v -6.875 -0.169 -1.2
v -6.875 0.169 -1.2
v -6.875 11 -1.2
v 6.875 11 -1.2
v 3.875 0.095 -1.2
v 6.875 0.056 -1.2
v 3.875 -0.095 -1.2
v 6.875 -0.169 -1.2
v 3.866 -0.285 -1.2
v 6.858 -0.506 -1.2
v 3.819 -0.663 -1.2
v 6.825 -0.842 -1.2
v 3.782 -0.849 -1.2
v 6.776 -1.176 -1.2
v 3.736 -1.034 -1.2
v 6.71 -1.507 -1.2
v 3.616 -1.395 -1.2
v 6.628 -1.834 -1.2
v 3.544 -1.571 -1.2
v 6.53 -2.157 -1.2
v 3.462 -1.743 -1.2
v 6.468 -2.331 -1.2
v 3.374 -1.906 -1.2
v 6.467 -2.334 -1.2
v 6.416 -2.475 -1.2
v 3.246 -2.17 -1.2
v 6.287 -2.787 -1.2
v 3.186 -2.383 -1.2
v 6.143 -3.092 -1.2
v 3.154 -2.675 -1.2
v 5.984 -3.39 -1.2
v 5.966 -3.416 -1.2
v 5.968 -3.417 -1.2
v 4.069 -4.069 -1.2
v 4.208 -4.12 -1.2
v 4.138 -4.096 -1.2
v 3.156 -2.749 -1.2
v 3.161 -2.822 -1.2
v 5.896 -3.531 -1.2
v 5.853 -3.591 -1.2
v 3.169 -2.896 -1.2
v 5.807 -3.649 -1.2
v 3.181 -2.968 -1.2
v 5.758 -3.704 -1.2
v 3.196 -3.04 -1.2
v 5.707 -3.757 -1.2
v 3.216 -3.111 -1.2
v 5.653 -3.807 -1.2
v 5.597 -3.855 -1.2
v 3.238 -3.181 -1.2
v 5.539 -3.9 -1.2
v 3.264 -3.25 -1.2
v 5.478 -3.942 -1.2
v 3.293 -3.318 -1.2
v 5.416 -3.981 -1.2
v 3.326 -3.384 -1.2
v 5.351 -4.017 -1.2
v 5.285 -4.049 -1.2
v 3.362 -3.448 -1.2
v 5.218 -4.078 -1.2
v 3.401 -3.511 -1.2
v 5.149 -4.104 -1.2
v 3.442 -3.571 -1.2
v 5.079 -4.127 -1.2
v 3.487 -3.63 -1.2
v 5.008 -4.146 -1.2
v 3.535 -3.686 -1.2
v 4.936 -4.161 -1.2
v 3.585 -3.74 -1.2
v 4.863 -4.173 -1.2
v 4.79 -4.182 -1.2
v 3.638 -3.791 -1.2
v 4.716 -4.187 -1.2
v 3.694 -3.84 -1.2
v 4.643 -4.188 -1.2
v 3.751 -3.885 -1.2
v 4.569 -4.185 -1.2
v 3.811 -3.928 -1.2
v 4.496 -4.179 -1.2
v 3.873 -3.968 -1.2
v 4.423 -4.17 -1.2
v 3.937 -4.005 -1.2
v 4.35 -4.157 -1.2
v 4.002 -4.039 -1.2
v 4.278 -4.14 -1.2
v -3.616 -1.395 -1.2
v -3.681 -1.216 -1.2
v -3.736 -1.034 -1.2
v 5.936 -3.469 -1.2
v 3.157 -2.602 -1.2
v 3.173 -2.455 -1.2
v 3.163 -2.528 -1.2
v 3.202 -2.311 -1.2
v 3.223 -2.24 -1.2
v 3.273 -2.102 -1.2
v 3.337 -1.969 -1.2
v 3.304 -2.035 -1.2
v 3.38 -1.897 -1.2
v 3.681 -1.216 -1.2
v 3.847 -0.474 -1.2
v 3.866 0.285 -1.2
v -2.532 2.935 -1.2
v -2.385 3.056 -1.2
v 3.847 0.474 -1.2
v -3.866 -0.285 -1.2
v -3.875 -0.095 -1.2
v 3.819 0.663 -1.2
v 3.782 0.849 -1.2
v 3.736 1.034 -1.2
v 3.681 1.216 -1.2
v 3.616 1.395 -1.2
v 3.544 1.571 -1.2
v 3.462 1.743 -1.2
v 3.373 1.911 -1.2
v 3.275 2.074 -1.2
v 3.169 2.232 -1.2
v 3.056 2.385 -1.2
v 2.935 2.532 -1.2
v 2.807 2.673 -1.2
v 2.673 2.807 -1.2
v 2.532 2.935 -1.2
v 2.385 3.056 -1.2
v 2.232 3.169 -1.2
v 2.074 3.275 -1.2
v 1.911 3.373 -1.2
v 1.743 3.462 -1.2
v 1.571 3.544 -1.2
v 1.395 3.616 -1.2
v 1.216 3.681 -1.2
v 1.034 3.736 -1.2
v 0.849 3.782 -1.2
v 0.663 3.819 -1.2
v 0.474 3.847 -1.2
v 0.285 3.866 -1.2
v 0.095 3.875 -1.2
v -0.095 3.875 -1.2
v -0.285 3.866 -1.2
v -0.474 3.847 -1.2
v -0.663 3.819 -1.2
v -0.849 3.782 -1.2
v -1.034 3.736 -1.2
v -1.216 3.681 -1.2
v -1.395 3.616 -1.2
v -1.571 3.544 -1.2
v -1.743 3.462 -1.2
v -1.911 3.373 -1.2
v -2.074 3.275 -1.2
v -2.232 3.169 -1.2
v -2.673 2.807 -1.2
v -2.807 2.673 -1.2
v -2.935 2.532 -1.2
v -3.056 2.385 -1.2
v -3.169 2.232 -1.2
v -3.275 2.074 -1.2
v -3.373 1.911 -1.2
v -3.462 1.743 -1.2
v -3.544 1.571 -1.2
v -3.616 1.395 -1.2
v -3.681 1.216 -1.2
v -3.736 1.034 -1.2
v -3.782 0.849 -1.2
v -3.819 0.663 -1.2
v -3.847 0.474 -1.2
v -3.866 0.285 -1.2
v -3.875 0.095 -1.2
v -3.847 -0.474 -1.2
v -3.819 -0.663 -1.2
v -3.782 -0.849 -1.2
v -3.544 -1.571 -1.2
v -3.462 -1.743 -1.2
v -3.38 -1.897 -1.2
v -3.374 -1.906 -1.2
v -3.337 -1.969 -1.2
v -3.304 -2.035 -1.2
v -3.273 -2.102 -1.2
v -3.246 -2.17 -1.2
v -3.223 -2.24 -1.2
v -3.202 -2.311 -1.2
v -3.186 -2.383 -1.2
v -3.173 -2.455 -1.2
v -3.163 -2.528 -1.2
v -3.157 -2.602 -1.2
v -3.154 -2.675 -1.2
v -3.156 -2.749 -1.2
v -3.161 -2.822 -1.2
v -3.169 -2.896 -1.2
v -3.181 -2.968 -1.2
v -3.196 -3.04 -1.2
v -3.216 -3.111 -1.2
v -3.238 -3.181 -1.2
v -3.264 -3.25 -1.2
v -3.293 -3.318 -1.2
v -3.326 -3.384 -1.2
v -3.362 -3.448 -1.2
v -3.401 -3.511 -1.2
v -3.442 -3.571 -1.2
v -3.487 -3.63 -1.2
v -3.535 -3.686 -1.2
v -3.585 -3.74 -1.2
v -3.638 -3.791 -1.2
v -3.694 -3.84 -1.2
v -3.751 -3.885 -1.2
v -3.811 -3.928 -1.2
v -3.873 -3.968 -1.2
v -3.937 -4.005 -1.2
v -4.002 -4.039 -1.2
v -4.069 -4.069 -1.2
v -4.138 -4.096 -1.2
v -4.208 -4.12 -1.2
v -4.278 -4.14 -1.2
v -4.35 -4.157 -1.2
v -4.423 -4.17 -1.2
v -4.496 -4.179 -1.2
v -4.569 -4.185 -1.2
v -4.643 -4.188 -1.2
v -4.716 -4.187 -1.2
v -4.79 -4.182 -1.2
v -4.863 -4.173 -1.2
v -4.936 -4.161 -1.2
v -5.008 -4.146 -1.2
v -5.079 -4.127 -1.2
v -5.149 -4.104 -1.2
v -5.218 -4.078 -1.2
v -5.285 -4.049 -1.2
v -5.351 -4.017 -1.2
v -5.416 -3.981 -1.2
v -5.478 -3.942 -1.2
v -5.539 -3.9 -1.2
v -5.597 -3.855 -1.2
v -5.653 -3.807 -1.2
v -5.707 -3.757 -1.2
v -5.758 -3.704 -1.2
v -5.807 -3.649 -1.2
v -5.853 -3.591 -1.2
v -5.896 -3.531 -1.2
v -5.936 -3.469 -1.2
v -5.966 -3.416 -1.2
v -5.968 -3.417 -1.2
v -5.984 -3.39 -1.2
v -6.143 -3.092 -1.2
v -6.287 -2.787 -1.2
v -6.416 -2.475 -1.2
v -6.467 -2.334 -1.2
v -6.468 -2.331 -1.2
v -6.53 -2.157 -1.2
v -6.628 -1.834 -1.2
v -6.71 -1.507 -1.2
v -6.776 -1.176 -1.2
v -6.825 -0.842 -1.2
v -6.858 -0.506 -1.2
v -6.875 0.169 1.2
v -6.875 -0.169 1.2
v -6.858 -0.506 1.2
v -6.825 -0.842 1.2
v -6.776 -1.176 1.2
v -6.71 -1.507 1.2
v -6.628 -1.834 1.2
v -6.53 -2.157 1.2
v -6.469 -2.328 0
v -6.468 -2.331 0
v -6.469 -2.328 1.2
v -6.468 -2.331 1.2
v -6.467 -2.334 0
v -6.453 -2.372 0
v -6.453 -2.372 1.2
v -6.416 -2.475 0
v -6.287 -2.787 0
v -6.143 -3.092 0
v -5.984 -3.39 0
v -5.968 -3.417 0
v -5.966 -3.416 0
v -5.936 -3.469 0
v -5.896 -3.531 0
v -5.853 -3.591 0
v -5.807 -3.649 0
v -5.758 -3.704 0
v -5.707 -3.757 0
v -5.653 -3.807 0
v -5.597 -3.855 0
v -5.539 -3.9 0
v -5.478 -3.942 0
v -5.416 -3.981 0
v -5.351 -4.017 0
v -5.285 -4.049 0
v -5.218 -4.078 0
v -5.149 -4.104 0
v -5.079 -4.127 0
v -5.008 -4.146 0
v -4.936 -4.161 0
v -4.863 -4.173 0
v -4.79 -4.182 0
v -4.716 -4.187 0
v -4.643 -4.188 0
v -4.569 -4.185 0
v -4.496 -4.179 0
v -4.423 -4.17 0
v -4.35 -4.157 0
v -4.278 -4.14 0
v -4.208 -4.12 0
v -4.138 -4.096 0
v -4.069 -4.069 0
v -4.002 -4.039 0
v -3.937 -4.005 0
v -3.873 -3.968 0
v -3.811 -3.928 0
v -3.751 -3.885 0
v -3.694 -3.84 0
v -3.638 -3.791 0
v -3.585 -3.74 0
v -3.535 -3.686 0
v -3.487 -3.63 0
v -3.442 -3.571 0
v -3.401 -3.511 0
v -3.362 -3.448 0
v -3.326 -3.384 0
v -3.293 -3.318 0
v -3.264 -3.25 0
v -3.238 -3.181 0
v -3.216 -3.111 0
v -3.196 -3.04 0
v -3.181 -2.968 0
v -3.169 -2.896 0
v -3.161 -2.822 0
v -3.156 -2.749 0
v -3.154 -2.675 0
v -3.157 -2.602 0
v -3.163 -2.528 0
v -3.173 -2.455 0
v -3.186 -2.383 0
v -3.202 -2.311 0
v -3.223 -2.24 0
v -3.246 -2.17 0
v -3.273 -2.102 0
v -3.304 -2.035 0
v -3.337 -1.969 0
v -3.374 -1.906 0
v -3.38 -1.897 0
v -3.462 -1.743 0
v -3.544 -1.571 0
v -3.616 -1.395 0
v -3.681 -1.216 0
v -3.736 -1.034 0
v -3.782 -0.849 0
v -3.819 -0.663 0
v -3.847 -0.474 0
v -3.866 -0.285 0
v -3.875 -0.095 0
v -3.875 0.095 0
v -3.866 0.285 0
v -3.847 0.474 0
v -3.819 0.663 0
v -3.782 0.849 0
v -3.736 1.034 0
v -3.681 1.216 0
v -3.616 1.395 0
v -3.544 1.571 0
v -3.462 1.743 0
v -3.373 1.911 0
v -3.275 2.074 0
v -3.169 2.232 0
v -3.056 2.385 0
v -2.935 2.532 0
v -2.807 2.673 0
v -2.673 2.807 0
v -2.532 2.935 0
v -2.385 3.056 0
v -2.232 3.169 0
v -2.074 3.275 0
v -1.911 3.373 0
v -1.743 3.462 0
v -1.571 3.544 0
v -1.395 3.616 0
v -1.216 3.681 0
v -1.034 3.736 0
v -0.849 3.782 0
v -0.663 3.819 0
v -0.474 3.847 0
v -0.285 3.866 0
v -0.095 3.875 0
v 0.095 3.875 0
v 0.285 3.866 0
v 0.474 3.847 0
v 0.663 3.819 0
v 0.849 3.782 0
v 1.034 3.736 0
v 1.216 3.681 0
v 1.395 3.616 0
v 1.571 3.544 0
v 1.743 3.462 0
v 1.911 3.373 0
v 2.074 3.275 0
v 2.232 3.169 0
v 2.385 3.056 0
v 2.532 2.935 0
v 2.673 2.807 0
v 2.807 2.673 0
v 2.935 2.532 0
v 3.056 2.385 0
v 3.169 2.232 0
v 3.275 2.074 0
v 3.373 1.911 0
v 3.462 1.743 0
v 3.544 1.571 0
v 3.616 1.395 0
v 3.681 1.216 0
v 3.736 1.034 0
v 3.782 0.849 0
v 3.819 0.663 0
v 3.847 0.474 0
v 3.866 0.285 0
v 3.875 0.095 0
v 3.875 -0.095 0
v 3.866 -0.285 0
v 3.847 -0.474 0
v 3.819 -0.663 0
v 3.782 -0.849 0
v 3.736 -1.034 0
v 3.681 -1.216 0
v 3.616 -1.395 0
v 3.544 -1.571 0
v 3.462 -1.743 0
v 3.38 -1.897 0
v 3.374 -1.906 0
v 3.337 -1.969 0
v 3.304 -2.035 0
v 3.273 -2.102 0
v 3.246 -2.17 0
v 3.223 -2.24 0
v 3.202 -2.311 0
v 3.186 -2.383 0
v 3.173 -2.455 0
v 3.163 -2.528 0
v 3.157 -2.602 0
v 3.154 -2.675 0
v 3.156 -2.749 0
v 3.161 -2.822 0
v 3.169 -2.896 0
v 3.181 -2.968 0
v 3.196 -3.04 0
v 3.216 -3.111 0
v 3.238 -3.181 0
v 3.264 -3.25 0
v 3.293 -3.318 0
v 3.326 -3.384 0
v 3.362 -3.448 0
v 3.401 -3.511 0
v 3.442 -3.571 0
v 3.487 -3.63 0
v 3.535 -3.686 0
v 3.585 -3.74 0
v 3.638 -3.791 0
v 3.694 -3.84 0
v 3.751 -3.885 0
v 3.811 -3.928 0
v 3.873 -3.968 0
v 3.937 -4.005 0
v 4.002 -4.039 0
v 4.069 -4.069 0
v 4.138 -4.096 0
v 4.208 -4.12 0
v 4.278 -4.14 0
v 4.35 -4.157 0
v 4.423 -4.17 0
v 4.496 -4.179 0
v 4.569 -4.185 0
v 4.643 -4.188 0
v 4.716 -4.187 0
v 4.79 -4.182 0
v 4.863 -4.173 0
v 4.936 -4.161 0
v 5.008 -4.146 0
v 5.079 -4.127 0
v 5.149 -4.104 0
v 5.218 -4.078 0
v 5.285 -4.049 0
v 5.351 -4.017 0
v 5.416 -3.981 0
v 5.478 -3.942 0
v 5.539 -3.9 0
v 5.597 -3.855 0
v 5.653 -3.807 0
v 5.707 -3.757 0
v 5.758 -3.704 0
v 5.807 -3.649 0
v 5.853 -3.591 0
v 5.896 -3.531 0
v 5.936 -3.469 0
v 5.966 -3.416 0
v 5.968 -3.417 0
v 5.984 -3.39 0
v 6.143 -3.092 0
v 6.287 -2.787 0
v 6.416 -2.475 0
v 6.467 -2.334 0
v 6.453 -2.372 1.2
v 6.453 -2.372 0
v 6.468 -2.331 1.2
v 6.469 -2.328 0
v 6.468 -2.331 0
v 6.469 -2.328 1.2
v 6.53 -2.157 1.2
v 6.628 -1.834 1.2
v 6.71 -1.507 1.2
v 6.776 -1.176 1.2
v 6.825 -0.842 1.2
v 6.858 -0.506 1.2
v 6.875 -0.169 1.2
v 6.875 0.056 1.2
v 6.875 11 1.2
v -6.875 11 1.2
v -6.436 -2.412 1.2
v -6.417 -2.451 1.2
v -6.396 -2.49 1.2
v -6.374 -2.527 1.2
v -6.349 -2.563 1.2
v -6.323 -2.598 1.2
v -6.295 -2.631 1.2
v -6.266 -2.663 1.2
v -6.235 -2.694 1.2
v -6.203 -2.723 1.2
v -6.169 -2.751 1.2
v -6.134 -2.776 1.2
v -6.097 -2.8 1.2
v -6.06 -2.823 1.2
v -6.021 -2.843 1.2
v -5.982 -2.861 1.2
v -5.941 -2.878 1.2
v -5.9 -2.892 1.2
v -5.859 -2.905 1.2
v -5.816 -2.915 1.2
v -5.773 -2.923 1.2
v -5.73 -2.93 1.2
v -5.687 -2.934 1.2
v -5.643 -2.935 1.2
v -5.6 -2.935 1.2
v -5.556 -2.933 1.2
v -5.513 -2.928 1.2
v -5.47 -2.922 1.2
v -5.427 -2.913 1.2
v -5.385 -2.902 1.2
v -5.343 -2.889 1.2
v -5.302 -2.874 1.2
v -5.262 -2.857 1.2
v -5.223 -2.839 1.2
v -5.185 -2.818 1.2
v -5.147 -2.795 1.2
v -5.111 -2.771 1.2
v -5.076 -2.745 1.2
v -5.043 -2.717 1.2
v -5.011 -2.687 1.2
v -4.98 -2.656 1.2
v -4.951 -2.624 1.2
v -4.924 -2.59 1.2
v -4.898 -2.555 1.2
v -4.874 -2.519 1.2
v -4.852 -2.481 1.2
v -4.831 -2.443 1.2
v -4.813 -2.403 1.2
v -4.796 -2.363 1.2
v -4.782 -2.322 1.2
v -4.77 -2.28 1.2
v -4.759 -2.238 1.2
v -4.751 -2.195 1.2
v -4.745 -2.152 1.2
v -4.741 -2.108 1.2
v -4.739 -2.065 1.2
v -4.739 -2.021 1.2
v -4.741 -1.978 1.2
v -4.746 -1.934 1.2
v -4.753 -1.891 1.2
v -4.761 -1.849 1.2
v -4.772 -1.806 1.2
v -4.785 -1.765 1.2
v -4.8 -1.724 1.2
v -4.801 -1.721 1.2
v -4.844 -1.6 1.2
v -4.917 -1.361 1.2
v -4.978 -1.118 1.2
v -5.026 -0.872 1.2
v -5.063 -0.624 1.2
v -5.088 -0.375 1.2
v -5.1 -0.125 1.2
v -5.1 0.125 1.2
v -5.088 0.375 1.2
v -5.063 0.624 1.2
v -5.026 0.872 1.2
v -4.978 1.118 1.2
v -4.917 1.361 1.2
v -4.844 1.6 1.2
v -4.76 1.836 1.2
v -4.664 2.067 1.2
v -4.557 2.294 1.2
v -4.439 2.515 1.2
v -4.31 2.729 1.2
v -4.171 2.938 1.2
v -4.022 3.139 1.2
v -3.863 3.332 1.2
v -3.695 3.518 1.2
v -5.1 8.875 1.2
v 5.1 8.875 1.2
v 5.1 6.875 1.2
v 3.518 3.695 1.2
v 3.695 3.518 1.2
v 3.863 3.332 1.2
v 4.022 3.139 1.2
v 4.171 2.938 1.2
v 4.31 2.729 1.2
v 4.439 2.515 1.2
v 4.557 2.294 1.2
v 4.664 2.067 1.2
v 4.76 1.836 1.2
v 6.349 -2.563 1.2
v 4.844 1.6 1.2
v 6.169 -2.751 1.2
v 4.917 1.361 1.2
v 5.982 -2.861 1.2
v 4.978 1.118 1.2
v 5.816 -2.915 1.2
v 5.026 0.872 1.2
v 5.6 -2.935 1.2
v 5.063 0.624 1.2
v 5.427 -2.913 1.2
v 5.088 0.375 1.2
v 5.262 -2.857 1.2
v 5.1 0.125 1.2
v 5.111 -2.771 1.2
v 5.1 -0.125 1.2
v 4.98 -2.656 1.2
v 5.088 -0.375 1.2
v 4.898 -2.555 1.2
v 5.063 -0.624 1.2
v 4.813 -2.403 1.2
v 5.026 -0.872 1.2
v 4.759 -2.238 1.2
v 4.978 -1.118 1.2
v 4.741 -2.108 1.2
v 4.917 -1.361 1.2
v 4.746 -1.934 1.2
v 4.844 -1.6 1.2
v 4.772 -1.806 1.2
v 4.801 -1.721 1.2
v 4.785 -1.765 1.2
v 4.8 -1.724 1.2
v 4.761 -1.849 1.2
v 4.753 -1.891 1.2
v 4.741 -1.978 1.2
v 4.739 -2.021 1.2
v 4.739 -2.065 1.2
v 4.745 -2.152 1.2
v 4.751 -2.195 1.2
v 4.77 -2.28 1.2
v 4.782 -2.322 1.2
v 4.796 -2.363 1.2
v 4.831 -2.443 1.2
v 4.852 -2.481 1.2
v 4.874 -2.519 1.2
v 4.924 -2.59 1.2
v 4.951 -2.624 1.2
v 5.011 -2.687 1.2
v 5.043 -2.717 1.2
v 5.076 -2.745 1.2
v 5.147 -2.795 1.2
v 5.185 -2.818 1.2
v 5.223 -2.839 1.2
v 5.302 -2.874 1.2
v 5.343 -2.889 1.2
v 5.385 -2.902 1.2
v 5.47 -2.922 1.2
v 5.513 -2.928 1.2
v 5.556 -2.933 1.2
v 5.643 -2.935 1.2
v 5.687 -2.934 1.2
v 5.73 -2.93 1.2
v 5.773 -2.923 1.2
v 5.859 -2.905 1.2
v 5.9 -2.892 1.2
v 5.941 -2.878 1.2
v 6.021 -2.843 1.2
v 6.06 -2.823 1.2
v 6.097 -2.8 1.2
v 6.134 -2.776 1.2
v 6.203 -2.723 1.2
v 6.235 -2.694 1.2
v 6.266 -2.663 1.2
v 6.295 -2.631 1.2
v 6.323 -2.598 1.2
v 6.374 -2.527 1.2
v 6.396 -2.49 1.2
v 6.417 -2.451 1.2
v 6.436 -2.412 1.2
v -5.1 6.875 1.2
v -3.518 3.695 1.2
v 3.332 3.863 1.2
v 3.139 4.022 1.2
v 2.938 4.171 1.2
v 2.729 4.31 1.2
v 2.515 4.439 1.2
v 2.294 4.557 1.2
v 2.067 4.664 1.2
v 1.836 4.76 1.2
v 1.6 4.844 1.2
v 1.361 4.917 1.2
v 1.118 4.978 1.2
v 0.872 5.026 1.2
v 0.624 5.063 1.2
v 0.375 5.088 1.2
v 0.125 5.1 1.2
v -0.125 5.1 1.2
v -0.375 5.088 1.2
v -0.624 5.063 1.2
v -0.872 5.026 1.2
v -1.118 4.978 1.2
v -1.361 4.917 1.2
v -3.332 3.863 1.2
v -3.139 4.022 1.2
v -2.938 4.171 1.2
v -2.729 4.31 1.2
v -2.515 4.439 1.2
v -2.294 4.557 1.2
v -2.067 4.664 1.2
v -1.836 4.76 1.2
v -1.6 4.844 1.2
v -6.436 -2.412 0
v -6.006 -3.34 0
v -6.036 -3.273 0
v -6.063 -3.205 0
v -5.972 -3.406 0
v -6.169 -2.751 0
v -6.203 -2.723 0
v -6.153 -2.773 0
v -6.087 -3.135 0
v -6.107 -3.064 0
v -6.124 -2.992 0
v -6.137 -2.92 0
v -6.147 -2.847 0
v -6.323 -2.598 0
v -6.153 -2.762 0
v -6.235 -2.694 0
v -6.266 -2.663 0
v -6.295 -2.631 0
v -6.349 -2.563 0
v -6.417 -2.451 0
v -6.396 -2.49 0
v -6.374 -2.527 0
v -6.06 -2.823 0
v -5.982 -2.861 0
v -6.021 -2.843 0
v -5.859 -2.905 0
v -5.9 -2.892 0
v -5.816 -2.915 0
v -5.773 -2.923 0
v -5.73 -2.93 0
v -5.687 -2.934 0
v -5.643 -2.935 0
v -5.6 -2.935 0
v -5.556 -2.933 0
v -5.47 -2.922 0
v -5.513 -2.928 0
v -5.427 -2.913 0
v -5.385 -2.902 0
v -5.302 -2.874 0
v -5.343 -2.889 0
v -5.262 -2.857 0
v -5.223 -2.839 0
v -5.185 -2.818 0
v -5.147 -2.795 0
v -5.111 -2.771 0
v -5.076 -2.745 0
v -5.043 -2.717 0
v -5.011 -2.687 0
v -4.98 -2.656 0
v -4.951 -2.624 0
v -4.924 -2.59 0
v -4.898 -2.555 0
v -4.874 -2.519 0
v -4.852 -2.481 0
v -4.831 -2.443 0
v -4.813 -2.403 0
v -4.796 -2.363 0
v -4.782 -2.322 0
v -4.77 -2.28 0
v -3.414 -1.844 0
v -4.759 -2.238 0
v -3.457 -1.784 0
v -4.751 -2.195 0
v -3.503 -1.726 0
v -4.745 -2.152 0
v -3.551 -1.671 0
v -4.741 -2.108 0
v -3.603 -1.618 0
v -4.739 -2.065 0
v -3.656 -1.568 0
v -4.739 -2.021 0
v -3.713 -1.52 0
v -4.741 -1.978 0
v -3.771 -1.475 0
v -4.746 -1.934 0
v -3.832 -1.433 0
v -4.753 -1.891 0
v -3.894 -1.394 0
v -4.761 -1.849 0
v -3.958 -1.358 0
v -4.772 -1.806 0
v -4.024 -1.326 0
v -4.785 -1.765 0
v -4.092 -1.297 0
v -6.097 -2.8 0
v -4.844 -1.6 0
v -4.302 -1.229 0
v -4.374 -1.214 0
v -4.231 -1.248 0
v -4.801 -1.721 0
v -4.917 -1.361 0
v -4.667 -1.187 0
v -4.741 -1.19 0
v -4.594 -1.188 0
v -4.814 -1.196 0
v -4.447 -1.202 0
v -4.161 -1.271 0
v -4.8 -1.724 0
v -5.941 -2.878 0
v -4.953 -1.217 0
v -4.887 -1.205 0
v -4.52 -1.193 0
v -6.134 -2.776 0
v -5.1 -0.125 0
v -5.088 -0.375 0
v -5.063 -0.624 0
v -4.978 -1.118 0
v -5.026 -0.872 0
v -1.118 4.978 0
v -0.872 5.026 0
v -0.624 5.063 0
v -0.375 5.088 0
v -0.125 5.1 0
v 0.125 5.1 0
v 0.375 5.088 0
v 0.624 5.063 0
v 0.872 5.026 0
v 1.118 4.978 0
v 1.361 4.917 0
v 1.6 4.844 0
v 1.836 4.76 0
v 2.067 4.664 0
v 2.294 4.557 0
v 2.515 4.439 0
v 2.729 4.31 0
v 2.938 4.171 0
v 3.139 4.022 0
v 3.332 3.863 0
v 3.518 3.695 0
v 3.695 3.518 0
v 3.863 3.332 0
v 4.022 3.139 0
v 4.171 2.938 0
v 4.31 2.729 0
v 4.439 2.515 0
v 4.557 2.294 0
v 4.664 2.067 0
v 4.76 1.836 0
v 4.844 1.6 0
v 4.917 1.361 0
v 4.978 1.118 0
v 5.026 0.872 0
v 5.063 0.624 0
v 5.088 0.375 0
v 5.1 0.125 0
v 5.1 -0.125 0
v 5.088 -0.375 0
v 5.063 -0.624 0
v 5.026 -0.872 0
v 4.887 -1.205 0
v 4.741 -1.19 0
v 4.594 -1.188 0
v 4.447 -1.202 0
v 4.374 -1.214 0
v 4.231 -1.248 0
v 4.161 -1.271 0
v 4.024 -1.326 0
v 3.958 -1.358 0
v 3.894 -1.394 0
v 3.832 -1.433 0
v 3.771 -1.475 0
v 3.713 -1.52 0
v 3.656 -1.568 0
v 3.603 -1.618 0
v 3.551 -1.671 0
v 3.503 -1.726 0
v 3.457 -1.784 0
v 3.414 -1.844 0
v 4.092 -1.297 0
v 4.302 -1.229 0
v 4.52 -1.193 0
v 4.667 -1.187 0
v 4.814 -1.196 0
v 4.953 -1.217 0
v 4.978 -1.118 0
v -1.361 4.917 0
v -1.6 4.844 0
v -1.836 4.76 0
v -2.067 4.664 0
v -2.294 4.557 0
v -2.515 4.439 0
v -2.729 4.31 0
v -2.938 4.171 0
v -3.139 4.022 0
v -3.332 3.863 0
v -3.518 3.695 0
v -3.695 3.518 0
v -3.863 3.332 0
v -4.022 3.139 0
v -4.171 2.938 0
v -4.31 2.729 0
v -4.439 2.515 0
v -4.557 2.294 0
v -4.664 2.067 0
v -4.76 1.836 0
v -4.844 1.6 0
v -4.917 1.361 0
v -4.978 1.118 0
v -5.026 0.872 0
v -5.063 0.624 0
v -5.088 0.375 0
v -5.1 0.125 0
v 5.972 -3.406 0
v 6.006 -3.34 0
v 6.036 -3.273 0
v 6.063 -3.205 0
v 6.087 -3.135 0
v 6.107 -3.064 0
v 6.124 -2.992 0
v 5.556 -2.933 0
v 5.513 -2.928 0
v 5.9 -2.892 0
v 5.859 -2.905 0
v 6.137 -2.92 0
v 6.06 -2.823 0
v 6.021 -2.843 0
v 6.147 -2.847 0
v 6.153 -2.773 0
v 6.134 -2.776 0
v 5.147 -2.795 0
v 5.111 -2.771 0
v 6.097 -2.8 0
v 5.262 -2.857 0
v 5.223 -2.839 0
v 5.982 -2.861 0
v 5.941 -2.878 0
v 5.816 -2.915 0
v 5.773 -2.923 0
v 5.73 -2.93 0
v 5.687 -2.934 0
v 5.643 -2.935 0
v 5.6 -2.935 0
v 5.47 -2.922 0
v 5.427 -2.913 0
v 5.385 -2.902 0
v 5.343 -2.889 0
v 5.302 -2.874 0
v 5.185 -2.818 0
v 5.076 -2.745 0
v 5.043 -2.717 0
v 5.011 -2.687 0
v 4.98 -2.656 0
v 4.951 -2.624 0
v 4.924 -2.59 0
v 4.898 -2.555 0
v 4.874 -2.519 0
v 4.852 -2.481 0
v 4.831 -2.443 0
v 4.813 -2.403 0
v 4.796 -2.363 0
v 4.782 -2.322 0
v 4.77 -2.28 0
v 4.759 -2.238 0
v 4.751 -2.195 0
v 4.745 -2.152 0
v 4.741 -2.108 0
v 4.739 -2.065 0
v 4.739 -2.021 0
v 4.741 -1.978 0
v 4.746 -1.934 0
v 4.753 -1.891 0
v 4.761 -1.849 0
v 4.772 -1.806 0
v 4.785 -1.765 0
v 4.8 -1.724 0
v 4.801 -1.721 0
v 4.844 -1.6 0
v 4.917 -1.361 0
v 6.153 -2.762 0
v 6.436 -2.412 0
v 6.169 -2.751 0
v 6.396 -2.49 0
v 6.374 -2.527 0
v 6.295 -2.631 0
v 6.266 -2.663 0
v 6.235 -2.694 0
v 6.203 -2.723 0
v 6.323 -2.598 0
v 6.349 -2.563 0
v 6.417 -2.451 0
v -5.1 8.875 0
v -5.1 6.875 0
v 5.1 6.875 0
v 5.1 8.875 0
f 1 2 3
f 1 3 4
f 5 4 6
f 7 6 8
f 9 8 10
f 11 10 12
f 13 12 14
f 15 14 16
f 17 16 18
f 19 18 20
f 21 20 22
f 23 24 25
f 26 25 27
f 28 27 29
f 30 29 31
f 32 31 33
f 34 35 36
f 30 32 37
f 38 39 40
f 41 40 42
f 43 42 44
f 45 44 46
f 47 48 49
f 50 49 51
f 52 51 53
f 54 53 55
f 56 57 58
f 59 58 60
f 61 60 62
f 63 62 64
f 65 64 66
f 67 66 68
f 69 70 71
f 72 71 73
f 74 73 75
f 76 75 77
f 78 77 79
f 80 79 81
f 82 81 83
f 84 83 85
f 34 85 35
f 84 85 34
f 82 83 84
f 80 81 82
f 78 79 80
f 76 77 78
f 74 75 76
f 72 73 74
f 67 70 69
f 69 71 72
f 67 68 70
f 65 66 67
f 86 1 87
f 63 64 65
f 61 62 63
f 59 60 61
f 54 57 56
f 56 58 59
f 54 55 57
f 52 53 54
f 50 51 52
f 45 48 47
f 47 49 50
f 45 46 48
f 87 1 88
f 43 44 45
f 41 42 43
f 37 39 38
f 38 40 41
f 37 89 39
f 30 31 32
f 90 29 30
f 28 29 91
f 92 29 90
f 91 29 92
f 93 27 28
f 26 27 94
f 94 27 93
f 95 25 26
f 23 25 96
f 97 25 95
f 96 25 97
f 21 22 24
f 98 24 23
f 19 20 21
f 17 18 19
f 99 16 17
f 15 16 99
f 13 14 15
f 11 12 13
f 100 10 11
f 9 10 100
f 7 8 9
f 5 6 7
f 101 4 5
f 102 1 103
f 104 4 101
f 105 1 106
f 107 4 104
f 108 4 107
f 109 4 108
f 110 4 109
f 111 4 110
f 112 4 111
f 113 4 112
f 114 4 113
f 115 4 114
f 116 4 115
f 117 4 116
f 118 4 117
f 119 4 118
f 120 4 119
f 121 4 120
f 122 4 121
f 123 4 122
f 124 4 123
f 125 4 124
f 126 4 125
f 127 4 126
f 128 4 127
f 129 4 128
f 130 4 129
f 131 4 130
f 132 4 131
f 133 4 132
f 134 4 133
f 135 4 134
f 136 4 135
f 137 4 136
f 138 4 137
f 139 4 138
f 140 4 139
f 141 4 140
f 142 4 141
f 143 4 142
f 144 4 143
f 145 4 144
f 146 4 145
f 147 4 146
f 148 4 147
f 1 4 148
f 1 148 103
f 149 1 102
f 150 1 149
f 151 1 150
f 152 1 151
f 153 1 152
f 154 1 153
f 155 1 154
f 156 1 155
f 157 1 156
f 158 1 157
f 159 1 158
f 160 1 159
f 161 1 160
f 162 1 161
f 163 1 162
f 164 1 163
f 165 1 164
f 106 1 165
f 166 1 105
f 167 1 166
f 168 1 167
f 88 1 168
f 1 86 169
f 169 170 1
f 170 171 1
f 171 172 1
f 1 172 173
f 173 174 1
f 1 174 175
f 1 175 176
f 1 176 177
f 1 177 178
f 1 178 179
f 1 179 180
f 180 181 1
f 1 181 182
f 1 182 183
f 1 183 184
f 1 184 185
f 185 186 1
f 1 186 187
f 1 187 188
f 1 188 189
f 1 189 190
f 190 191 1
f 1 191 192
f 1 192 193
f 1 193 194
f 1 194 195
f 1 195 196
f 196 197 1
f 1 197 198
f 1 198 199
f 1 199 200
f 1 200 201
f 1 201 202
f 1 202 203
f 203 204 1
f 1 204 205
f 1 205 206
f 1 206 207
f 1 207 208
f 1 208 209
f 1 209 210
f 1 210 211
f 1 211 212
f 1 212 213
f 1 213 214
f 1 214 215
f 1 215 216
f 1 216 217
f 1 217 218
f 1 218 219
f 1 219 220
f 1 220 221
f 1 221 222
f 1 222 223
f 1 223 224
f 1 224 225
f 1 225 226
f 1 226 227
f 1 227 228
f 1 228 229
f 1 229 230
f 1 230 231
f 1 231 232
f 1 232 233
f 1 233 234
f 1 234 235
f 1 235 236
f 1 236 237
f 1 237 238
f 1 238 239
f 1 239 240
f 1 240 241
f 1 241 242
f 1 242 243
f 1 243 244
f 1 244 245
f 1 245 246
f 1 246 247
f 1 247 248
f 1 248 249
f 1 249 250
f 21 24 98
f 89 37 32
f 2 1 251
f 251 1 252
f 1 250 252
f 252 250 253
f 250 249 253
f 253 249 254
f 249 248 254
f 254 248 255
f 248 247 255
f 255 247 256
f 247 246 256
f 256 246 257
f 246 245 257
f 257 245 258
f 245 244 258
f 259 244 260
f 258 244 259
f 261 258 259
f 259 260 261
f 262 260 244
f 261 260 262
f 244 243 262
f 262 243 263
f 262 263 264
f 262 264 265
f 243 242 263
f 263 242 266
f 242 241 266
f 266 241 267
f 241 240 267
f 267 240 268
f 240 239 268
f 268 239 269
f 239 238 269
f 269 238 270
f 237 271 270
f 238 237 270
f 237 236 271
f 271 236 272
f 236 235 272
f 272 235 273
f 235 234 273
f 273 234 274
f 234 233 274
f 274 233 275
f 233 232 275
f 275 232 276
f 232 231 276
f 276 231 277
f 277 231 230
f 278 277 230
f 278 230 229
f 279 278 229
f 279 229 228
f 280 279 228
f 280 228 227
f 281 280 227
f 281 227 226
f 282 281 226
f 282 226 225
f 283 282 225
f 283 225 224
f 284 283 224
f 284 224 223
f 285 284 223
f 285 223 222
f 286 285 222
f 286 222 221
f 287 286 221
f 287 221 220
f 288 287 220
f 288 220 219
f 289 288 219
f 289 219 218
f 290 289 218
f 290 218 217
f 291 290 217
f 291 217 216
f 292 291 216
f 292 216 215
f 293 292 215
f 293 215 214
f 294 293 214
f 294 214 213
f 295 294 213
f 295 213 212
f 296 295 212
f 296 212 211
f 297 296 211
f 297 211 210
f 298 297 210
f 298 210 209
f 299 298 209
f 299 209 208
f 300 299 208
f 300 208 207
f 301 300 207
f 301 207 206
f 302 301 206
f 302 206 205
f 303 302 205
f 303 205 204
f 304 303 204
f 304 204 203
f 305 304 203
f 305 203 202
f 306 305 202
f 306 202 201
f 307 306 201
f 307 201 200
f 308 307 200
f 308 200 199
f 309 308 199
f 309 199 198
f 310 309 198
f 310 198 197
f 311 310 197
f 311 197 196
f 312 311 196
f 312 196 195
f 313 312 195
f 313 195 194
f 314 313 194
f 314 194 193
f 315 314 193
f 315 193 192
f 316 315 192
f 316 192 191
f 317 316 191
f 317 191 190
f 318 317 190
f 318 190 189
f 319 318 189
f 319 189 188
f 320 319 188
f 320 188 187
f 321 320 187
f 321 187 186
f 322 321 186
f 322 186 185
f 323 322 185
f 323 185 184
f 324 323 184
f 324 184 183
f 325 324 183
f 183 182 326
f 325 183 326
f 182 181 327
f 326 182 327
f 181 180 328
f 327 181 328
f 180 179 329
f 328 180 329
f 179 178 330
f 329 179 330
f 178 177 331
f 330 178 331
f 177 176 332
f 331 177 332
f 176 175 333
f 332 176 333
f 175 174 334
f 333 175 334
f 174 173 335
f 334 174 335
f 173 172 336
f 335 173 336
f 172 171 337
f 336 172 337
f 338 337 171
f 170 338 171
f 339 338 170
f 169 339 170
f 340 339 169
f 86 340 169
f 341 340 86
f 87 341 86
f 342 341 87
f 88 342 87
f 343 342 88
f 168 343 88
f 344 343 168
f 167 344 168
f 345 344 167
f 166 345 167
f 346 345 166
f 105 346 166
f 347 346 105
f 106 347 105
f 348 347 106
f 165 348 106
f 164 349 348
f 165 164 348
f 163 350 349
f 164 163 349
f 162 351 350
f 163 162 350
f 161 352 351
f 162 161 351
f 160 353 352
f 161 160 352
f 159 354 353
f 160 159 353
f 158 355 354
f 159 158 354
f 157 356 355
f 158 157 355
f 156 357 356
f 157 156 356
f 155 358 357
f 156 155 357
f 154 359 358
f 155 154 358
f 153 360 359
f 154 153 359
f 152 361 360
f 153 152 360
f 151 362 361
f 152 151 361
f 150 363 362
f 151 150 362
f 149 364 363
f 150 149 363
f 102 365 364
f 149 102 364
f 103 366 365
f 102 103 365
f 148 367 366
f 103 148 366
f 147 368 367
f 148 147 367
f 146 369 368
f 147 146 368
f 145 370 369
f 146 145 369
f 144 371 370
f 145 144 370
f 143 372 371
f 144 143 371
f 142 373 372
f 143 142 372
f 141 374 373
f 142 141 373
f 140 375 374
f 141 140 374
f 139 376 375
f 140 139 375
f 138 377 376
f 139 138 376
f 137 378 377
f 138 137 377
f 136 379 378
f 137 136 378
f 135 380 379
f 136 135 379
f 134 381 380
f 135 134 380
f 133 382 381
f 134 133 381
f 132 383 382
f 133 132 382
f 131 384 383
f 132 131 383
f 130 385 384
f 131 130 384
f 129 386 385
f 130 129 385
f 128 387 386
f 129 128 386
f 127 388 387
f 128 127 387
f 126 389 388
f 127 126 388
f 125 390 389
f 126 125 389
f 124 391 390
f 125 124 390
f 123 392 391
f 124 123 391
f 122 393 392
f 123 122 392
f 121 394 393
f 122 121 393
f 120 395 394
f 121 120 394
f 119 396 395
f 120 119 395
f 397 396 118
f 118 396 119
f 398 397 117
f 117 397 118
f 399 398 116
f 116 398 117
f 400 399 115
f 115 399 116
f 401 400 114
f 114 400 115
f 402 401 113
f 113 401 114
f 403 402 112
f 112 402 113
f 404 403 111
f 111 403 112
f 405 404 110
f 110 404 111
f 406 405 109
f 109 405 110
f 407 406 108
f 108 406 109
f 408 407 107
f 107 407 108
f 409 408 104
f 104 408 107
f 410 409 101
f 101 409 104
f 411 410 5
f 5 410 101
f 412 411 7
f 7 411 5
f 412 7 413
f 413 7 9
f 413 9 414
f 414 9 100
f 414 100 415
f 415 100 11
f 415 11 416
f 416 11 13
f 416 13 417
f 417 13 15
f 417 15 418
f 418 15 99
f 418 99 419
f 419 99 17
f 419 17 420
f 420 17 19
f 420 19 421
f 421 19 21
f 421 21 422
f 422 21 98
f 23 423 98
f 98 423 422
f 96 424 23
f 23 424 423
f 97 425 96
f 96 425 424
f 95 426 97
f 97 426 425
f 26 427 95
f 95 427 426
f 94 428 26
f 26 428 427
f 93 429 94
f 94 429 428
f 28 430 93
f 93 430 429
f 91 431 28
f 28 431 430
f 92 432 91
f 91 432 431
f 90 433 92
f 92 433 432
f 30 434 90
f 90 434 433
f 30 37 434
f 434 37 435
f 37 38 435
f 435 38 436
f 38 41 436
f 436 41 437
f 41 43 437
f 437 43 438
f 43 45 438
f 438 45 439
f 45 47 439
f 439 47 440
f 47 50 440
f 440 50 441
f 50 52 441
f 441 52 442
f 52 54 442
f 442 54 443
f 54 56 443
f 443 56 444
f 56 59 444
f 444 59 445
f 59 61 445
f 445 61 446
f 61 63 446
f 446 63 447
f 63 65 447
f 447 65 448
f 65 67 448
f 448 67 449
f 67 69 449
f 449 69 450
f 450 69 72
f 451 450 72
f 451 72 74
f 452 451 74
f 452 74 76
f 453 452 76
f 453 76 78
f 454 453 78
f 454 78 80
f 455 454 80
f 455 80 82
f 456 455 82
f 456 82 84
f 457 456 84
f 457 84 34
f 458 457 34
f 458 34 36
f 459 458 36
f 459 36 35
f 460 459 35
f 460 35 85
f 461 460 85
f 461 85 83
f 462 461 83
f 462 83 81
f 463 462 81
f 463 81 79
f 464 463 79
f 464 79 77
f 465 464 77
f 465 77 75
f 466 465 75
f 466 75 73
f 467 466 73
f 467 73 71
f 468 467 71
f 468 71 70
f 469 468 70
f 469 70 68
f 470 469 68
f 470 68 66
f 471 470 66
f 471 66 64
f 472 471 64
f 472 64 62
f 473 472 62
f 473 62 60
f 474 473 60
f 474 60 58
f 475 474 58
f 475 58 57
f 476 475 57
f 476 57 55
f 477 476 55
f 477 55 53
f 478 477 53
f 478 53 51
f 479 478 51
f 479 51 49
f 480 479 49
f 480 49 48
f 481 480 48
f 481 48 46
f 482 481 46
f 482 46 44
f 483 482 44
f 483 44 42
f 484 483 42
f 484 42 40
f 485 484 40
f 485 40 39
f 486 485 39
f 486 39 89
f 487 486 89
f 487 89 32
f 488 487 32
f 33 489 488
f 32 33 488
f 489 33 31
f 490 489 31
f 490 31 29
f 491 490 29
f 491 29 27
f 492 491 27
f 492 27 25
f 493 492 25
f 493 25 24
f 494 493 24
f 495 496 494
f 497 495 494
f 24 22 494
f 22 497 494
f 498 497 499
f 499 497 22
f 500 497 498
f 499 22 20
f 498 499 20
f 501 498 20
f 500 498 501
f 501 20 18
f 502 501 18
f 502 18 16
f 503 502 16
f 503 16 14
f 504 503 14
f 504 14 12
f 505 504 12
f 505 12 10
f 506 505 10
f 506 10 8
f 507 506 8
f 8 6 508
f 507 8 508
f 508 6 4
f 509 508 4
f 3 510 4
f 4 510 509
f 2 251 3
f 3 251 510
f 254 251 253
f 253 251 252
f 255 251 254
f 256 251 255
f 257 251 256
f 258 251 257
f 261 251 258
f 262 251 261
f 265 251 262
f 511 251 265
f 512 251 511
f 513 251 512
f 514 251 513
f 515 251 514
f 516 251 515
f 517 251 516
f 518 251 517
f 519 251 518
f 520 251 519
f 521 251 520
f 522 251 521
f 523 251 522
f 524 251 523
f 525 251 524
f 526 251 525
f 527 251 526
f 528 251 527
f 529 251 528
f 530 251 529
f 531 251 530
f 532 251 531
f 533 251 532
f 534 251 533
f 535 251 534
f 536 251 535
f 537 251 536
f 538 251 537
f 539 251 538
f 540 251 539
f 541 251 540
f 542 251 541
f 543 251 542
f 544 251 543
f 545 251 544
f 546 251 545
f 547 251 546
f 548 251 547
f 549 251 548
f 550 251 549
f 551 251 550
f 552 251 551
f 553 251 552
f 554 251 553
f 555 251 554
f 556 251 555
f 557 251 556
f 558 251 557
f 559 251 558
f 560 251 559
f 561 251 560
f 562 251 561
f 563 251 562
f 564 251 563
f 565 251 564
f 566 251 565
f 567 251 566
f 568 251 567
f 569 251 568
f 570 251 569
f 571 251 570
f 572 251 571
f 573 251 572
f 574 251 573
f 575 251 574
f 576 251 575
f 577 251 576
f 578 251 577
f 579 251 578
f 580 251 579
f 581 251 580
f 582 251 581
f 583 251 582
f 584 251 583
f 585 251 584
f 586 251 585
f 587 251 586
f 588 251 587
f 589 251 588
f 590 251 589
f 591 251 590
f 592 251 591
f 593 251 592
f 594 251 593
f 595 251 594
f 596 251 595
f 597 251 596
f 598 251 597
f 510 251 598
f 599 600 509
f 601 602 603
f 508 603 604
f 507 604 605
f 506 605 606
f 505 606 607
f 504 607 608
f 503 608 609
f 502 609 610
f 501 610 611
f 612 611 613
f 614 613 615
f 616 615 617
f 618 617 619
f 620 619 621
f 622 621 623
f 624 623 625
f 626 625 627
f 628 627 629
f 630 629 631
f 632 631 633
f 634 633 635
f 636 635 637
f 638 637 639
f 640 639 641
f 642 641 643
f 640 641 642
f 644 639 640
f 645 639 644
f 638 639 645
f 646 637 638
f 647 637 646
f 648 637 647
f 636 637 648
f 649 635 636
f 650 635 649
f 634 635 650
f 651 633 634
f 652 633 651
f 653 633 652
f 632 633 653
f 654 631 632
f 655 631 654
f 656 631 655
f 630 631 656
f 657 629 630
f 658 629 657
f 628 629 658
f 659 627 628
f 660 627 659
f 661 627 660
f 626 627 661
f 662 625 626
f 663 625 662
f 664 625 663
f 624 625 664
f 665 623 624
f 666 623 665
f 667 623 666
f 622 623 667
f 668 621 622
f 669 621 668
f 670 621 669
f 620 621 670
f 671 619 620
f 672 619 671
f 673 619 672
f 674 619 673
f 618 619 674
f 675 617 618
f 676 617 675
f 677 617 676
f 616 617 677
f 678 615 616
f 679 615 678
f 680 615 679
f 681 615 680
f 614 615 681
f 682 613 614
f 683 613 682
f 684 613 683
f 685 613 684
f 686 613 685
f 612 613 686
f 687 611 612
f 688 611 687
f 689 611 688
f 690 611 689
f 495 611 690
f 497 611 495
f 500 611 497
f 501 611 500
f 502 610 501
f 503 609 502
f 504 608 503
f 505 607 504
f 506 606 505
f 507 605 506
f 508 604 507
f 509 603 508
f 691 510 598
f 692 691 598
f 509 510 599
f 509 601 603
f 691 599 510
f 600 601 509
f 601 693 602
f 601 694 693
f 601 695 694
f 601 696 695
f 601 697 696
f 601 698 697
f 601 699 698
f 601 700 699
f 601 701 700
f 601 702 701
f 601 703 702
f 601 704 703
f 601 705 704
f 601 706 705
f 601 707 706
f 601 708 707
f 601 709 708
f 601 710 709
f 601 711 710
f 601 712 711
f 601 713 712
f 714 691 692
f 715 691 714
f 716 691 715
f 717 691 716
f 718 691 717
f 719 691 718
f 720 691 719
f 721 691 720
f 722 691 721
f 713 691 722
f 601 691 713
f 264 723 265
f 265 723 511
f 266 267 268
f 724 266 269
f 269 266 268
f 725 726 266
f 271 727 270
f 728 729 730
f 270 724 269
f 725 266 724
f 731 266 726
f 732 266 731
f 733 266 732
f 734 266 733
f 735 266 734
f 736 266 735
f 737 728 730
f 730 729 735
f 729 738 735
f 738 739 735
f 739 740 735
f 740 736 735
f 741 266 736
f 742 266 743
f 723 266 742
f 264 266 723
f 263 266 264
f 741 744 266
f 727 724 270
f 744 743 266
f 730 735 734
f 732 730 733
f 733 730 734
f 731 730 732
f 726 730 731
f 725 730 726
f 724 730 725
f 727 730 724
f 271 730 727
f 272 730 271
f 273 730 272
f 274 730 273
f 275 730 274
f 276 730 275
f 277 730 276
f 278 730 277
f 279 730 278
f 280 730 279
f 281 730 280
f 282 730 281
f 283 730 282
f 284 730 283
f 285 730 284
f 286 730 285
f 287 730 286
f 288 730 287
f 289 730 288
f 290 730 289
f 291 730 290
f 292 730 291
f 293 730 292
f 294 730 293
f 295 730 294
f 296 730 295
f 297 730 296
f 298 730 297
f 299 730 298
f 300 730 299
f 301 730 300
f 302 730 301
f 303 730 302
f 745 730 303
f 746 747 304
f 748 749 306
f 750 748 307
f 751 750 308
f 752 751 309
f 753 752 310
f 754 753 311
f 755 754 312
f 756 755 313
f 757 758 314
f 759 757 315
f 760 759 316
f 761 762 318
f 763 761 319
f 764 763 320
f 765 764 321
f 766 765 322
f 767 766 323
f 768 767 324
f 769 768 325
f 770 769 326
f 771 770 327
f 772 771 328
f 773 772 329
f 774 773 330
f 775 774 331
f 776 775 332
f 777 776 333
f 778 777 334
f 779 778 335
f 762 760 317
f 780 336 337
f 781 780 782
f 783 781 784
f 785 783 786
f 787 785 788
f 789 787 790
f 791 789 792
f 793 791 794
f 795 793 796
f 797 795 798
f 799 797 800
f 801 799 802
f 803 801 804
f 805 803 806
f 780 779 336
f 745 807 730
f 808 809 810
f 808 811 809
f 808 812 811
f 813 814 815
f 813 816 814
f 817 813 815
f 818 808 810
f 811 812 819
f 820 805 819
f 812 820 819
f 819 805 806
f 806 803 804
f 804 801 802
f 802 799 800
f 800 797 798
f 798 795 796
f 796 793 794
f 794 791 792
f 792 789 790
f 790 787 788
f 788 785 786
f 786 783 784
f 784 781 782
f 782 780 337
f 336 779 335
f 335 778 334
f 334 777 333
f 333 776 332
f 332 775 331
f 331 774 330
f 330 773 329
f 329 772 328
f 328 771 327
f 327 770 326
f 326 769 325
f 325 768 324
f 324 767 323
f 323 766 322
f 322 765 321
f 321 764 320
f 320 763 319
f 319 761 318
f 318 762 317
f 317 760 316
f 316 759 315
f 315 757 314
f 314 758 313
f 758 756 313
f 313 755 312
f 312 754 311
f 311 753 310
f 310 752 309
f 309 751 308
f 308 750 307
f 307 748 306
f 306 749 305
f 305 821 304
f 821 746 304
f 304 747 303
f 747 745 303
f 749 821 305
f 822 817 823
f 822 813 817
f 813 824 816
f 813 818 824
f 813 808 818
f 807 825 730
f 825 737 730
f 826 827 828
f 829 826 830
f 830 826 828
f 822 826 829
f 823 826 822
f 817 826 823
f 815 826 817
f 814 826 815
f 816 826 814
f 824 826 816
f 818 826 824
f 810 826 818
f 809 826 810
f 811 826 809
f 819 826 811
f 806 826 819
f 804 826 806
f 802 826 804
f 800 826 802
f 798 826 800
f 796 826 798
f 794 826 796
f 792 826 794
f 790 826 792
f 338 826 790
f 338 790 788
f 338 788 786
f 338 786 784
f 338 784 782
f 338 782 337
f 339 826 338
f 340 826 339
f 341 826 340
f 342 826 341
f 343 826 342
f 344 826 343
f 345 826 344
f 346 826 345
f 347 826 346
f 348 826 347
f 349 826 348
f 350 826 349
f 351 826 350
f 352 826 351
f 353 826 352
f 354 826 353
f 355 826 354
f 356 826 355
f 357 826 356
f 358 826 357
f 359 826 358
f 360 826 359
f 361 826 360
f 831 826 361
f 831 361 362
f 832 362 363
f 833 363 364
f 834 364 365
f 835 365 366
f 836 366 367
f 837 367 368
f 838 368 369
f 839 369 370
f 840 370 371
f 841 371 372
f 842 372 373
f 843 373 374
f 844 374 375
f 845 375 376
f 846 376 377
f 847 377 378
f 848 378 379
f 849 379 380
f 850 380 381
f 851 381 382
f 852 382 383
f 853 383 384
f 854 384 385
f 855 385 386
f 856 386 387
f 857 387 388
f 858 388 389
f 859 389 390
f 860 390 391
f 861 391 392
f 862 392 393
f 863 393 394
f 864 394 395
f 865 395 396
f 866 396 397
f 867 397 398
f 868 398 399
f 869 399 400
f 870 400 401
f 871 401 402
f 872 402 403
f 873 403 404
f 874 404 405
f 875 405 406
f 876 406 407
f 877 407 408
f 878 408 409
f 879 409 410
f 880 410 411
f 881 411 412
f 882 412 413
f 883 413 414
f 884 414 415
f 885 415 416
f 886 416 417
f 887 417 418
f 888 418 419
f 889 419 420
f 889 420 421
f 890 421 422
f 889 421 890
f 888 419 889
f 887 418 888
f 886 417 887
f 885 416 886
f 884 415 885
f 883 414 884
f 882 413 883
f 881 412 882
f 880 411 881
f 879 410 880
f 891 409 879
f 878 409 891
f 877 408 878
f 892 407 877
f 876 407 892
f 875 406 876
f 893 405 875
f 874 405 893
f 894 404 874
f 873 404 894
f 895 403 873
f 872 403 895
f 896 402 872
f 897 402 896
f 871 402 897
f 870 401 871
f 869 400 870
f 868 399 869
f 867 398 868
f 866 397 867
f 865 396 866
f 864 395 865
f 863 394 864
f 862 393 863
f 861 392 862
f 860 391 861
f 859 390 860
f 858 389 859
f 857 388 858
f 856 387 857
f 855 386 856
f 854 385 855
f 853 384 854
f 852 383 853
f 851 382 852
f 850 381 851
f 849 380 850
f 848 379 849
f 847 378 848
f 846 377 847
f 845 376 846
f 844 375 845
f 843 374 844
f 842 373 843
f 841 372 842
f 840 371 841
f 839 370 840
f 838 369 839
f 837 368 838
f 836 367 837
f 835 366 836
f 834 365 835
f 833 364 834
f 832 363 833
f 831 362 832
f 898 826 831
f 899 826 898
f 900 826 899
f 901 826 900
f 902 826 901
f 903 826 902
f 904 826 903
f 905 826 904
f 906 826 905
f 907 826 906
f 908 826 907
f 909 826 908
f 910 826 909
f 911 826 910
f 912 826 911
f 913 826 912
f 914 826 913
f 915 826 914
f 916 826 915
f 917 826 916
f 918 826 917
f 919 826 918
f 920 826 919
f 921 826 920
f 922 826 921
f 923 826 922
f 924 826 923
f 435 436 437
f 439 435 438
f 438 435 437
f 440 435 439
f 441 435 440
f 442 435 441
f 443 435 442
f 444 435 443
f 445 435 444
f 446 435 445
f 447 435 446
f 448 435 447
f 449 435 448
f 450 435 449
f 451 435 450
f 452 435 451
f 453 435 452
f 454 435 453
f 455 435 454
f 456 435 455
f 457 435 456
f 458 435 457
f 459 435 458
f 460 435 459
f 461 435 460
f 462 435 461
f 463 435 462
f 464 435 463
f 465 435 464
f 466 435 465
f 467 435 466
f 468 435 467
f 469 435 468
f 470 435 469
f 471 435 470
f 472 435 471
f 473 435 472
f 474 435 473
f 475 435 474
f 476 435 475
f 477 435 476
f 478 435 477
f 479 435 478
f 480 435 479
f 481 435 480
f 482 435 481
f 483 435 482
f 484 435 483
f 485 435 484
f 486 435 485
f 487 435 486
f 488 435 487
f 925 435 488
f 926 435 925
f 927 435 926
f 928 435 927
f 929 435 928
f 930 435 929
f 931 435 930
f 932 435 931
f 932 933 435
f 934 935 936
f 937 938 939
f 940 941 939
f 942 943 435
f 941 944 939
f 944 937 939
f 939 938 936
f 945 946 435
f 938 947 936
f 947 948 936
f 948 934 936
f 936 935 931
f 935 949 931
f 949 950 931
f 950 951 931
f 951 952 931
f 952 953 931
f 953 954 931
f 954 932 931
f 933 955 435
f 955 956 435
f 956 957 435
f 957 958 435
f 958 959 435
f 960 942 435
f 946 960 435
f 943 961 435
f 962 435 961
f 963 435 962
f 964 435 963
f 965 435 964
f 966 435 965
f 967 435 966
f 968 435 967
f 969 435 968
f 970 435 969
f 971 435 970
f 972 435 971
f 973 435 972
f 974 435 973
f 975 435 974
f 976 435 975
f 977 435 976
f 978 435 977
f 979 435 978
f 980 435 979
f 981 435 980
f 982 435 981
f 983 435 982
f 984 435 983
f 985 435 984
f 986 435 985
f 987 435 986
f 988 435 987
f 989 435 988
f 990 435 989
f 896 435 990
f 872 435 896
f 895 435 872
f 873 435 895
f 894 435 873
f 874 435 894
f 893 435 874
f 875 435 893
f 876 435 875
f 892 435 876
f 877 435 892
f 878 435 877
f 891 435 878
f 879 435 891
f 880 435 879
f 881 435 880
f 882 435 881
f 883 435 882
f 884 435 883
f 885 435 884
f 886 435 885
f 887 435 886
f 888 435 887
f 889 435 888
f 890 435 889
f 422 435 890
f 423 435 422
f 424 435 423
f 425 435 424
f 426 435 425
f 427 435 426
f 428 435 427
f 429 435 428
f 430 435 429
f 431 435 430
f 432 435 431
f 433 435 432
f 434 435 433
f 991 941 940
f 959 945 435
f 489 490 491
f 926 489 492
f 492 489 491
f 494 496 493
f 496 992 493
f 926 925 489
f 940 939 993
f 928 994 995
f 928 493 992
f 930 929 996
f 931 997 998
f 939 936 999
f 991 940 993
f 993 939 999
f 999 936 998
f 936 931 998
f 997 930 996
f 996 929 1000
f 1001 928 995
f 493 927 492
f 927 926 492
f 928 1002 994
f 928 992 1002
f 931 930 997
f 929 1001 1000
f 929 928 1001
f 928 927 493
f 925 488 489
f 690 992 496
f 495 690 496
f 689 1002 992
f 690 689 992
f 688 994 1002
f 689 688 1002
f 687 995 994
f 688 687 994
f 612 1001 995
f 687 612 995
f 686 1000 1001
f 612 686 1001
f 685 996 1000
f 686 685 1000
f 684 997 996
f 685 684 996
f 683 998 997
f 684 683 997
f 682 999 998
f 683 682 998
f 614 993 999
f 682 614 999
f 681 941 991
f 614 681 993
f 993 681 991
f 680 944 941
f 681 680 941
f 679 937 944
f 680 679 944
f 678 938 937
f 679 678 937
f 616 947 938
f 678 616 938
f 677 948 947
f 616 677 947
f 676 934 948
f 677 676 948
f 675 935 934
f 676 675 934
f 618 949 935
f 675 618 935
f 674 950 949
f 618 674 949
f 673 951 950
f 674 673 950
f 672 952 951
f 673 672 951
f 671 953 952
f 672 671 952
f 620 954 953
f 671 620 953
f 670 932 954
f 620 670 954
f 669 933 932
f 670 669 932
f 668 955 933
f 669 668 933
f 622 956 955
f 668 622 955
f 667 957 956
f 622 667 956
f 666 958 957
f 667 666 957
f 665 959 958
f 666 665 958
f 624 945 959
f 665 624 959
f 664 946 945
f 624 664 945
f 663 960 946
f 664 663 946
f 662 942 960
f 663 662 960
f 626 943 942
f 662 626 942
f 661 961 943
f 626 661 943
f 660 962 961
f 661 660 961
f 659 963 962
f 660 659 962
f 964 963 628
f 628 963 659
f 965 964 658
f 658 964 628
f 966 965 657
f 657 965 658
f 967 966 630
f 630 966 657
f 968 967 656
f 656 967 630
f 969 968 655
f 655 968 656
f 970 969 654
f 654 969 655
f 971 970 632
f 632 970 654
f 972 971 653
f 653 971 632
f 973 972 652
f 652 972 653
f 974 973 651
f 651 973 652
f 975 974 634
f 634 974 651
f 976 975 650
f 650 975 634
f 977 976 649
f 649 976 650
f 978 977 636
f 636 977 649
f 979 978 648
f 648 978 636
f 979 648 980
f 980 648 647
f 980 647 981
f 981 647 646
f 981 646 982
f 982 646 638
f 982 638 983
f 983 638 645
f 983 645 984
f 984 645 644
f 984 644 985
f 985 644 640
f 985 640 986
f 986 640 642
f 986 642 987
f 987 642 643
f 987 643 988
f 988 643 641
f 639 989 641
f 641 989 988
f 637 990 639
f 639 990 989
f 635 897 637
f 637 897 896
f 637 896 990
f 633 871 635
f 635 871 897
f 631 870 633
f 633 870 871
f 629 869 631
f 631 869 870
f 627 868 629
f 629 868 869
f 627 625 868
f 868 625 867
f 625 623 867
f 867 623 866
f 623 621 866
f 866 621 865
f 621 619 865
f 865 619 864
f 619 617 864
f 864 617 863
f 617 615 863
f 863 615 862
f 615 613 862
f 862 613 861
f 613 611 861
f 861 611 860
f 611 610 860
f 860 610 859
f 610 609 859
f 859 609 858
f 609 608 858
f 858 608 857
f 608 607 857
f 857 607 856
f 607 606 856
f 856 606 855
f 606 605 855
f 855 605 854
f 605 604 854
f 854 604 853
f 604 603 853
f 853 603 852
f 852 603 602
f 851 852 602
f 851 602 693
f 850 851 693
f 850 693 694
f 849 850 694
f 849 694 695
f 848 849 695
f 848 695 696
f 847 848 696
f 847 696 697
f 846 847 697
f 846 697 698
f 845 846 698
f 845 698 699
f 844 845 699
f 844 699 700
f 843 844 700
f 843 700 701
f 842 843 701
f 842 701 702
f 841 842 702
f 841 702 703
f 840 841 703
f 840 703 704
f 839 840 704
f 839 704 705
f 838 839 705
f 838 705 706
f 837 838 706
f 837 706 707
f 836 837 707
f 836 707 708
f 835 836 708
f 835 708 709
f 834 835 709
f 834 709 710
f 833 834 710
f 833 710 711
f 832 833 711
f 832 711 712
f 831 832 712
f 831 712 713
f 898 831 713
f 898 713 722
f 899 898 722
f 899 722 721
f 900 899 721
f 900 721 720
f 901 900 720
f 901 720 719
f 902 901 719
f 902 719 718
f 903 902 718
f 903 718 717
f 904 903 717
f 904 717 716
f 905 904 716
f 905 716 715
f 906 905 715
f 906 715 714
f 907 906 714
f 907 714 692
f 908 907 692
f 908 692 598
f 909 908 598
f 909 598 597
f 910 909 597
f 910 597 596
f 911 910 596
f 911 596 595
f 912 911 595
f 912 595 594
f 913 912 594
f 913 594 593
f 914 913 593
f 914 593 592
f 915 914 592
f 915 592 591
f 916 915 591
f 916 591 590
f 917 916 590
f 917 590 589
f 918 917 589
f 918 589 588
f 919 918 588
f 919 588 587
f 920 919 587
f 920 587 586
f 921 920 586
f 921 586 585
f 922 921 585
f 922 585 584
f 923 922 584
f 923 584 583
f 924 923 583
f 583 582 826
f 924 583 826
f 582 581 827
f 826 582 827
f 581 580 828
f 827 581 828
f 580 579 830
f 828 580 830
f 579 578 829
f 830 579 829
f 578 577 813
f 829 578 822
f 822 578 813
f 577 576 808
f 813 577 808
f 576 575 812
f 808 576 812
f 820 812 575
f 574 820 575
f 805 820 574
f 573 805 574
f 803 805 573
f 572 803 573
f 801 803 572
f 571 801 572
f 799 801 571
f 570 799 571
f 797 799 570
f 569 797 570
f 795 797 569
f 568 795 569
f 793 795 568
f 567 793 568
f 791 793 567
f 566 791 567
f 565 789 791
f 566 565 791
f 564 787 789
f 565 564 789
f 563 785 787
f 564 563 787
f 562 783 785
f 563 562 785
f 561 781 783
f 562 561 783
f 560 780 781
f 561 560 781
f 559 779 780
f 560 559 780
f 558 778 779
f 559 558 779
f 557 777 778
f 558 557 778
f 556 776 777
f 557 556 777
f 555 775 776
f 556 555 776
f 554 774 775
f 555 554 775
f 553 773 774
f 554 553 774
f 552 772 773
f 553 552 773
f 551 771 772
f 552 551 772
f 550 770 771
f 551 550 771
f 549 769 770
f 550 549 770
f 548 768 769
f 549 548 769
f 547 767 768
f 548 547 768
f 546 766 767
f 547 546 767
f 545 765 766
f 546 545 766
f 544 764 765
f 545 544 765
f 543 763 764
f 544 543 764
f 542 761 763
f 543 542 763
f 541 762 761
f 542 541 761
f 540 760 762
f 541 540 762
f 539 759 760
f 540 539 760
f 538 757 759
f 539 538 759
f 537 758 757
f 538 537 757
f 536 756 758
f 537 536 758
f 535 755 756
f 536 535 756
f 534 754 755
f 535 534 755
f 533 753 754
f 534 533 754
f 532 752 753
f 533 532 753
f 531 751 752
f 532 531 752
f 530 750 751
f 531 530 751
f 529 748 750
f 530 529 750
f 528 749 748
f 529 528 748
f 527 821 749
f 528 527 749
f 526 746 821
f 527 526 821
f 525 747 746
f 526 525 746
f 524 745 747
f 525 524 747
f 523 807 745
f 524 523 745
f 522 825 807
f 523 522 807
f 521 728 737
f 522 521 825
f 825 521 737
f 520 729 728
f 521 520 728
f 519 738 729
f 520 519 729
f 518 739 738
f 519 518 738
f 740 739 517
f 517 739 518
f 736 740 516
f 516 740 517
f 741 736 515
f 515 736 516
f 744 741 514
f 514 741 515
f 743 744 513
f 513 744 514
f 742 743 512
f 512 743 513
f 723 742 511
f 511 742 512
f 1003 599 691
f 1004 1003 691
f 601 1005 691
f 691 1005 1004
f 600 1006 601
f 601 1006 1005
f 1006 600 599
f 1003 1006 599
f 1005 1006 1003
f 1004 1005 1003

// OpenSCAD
// file: util.scad
function accurate_diam(diam,sides) = 1 / cos(180/sides) / 2 * diam;

module hole(diam,len,sides=8) {
  rotate([0,0,180/sides]) {
    cylinder(r=accurate_diam(diam,sides),h=len,center=true,$fn=sides);
  }
}

module debug_axes() {
  color("red") {
    translate([50,0,0]) cube([100,.2,.2],center=true);
    translate([0,50,0]) cube([.2,100,.2],center=true);
    translate([0,0,50]) cube([.2,.2,100],center=true);
  }
}
// main file
use <util.scad>;

left            = -1;
right           = 1;
to_clip_diam    = 7.75; // plus a little bit of slop
clip_rim_diam   = 10.2;   // plus a little bit of slop
extrusion_width = 0.5;
resolution      = 128;

module bowden_clip(diam=to_clip_diam,height=1.2) {
  surround_width = extrusion_width*6;
  outer_diam     = diam + surround_width*2;
  opening_angle  = 60;

  around_clip_rim = (outer_diam - clip_rim_diam)/2;

  module body() {
    translate([0,0,0]) {
      hole(outer_diam,height*2,resolution);
      translate([0,outer_diam*.4,0]) {
        cube([outer_diam,outer_diam*.8,height*2],center=true);
      }
    }
  }

  module holes() {
    translate([0,outer_diam/2+1,height]) {
      cube([clip_rim_diam,2,height*2],center=true);
    }

    hole(diam,10,resolution);

    translate([0,0,5]) {
      hole(clip_rim_diam,10,resolution);
    }

    hull() {
      for(side=[left,right]) {
        rotate([0,0,opening_angle*side]) {
          translate([0,-outer_diam/2,0]) {
            cube([0.05,outer_diam,10],center=true);
          }
        }
      }
    }
    hull() {
      for(side=[left,right]) {
        rotate([0,0,(opening_angle+10)*side]) {
          translate([0,-outer_diam/2,5]) {
            cube([0.05,outer_diam,10],center=true);
          }
        }
      }
    }
    /*
    % translate([0,-outer_diam,0]) {
      cube([to_clip_diam-1,outer_diam*2,10],center=true);
      translate([0,0,5]) {
        cube([clip_rim_diam-.6,outer_diam*2,10],center=true);
      }
    }
    */
  }

  module bridges() {
    for(side=[left,right]) {
      rotate([0,0,opening_angle*side]) {
        translate([0,-outer_diam/2+surround_width/2,-height/2]) {
          hole(surround_width,height,resolution);
        }
      }
      rotate([0,0,(opening_angle+10)*side]) {
        translate([0,-outer_diam/2+around_clip_rim/2,0]) {
          hole(around_clip_rim,height*2,resolution);
        }
      }
    }
  }

  difference() {
    body();
    holes();
  }
  bridges();
}

bowden_clip();
